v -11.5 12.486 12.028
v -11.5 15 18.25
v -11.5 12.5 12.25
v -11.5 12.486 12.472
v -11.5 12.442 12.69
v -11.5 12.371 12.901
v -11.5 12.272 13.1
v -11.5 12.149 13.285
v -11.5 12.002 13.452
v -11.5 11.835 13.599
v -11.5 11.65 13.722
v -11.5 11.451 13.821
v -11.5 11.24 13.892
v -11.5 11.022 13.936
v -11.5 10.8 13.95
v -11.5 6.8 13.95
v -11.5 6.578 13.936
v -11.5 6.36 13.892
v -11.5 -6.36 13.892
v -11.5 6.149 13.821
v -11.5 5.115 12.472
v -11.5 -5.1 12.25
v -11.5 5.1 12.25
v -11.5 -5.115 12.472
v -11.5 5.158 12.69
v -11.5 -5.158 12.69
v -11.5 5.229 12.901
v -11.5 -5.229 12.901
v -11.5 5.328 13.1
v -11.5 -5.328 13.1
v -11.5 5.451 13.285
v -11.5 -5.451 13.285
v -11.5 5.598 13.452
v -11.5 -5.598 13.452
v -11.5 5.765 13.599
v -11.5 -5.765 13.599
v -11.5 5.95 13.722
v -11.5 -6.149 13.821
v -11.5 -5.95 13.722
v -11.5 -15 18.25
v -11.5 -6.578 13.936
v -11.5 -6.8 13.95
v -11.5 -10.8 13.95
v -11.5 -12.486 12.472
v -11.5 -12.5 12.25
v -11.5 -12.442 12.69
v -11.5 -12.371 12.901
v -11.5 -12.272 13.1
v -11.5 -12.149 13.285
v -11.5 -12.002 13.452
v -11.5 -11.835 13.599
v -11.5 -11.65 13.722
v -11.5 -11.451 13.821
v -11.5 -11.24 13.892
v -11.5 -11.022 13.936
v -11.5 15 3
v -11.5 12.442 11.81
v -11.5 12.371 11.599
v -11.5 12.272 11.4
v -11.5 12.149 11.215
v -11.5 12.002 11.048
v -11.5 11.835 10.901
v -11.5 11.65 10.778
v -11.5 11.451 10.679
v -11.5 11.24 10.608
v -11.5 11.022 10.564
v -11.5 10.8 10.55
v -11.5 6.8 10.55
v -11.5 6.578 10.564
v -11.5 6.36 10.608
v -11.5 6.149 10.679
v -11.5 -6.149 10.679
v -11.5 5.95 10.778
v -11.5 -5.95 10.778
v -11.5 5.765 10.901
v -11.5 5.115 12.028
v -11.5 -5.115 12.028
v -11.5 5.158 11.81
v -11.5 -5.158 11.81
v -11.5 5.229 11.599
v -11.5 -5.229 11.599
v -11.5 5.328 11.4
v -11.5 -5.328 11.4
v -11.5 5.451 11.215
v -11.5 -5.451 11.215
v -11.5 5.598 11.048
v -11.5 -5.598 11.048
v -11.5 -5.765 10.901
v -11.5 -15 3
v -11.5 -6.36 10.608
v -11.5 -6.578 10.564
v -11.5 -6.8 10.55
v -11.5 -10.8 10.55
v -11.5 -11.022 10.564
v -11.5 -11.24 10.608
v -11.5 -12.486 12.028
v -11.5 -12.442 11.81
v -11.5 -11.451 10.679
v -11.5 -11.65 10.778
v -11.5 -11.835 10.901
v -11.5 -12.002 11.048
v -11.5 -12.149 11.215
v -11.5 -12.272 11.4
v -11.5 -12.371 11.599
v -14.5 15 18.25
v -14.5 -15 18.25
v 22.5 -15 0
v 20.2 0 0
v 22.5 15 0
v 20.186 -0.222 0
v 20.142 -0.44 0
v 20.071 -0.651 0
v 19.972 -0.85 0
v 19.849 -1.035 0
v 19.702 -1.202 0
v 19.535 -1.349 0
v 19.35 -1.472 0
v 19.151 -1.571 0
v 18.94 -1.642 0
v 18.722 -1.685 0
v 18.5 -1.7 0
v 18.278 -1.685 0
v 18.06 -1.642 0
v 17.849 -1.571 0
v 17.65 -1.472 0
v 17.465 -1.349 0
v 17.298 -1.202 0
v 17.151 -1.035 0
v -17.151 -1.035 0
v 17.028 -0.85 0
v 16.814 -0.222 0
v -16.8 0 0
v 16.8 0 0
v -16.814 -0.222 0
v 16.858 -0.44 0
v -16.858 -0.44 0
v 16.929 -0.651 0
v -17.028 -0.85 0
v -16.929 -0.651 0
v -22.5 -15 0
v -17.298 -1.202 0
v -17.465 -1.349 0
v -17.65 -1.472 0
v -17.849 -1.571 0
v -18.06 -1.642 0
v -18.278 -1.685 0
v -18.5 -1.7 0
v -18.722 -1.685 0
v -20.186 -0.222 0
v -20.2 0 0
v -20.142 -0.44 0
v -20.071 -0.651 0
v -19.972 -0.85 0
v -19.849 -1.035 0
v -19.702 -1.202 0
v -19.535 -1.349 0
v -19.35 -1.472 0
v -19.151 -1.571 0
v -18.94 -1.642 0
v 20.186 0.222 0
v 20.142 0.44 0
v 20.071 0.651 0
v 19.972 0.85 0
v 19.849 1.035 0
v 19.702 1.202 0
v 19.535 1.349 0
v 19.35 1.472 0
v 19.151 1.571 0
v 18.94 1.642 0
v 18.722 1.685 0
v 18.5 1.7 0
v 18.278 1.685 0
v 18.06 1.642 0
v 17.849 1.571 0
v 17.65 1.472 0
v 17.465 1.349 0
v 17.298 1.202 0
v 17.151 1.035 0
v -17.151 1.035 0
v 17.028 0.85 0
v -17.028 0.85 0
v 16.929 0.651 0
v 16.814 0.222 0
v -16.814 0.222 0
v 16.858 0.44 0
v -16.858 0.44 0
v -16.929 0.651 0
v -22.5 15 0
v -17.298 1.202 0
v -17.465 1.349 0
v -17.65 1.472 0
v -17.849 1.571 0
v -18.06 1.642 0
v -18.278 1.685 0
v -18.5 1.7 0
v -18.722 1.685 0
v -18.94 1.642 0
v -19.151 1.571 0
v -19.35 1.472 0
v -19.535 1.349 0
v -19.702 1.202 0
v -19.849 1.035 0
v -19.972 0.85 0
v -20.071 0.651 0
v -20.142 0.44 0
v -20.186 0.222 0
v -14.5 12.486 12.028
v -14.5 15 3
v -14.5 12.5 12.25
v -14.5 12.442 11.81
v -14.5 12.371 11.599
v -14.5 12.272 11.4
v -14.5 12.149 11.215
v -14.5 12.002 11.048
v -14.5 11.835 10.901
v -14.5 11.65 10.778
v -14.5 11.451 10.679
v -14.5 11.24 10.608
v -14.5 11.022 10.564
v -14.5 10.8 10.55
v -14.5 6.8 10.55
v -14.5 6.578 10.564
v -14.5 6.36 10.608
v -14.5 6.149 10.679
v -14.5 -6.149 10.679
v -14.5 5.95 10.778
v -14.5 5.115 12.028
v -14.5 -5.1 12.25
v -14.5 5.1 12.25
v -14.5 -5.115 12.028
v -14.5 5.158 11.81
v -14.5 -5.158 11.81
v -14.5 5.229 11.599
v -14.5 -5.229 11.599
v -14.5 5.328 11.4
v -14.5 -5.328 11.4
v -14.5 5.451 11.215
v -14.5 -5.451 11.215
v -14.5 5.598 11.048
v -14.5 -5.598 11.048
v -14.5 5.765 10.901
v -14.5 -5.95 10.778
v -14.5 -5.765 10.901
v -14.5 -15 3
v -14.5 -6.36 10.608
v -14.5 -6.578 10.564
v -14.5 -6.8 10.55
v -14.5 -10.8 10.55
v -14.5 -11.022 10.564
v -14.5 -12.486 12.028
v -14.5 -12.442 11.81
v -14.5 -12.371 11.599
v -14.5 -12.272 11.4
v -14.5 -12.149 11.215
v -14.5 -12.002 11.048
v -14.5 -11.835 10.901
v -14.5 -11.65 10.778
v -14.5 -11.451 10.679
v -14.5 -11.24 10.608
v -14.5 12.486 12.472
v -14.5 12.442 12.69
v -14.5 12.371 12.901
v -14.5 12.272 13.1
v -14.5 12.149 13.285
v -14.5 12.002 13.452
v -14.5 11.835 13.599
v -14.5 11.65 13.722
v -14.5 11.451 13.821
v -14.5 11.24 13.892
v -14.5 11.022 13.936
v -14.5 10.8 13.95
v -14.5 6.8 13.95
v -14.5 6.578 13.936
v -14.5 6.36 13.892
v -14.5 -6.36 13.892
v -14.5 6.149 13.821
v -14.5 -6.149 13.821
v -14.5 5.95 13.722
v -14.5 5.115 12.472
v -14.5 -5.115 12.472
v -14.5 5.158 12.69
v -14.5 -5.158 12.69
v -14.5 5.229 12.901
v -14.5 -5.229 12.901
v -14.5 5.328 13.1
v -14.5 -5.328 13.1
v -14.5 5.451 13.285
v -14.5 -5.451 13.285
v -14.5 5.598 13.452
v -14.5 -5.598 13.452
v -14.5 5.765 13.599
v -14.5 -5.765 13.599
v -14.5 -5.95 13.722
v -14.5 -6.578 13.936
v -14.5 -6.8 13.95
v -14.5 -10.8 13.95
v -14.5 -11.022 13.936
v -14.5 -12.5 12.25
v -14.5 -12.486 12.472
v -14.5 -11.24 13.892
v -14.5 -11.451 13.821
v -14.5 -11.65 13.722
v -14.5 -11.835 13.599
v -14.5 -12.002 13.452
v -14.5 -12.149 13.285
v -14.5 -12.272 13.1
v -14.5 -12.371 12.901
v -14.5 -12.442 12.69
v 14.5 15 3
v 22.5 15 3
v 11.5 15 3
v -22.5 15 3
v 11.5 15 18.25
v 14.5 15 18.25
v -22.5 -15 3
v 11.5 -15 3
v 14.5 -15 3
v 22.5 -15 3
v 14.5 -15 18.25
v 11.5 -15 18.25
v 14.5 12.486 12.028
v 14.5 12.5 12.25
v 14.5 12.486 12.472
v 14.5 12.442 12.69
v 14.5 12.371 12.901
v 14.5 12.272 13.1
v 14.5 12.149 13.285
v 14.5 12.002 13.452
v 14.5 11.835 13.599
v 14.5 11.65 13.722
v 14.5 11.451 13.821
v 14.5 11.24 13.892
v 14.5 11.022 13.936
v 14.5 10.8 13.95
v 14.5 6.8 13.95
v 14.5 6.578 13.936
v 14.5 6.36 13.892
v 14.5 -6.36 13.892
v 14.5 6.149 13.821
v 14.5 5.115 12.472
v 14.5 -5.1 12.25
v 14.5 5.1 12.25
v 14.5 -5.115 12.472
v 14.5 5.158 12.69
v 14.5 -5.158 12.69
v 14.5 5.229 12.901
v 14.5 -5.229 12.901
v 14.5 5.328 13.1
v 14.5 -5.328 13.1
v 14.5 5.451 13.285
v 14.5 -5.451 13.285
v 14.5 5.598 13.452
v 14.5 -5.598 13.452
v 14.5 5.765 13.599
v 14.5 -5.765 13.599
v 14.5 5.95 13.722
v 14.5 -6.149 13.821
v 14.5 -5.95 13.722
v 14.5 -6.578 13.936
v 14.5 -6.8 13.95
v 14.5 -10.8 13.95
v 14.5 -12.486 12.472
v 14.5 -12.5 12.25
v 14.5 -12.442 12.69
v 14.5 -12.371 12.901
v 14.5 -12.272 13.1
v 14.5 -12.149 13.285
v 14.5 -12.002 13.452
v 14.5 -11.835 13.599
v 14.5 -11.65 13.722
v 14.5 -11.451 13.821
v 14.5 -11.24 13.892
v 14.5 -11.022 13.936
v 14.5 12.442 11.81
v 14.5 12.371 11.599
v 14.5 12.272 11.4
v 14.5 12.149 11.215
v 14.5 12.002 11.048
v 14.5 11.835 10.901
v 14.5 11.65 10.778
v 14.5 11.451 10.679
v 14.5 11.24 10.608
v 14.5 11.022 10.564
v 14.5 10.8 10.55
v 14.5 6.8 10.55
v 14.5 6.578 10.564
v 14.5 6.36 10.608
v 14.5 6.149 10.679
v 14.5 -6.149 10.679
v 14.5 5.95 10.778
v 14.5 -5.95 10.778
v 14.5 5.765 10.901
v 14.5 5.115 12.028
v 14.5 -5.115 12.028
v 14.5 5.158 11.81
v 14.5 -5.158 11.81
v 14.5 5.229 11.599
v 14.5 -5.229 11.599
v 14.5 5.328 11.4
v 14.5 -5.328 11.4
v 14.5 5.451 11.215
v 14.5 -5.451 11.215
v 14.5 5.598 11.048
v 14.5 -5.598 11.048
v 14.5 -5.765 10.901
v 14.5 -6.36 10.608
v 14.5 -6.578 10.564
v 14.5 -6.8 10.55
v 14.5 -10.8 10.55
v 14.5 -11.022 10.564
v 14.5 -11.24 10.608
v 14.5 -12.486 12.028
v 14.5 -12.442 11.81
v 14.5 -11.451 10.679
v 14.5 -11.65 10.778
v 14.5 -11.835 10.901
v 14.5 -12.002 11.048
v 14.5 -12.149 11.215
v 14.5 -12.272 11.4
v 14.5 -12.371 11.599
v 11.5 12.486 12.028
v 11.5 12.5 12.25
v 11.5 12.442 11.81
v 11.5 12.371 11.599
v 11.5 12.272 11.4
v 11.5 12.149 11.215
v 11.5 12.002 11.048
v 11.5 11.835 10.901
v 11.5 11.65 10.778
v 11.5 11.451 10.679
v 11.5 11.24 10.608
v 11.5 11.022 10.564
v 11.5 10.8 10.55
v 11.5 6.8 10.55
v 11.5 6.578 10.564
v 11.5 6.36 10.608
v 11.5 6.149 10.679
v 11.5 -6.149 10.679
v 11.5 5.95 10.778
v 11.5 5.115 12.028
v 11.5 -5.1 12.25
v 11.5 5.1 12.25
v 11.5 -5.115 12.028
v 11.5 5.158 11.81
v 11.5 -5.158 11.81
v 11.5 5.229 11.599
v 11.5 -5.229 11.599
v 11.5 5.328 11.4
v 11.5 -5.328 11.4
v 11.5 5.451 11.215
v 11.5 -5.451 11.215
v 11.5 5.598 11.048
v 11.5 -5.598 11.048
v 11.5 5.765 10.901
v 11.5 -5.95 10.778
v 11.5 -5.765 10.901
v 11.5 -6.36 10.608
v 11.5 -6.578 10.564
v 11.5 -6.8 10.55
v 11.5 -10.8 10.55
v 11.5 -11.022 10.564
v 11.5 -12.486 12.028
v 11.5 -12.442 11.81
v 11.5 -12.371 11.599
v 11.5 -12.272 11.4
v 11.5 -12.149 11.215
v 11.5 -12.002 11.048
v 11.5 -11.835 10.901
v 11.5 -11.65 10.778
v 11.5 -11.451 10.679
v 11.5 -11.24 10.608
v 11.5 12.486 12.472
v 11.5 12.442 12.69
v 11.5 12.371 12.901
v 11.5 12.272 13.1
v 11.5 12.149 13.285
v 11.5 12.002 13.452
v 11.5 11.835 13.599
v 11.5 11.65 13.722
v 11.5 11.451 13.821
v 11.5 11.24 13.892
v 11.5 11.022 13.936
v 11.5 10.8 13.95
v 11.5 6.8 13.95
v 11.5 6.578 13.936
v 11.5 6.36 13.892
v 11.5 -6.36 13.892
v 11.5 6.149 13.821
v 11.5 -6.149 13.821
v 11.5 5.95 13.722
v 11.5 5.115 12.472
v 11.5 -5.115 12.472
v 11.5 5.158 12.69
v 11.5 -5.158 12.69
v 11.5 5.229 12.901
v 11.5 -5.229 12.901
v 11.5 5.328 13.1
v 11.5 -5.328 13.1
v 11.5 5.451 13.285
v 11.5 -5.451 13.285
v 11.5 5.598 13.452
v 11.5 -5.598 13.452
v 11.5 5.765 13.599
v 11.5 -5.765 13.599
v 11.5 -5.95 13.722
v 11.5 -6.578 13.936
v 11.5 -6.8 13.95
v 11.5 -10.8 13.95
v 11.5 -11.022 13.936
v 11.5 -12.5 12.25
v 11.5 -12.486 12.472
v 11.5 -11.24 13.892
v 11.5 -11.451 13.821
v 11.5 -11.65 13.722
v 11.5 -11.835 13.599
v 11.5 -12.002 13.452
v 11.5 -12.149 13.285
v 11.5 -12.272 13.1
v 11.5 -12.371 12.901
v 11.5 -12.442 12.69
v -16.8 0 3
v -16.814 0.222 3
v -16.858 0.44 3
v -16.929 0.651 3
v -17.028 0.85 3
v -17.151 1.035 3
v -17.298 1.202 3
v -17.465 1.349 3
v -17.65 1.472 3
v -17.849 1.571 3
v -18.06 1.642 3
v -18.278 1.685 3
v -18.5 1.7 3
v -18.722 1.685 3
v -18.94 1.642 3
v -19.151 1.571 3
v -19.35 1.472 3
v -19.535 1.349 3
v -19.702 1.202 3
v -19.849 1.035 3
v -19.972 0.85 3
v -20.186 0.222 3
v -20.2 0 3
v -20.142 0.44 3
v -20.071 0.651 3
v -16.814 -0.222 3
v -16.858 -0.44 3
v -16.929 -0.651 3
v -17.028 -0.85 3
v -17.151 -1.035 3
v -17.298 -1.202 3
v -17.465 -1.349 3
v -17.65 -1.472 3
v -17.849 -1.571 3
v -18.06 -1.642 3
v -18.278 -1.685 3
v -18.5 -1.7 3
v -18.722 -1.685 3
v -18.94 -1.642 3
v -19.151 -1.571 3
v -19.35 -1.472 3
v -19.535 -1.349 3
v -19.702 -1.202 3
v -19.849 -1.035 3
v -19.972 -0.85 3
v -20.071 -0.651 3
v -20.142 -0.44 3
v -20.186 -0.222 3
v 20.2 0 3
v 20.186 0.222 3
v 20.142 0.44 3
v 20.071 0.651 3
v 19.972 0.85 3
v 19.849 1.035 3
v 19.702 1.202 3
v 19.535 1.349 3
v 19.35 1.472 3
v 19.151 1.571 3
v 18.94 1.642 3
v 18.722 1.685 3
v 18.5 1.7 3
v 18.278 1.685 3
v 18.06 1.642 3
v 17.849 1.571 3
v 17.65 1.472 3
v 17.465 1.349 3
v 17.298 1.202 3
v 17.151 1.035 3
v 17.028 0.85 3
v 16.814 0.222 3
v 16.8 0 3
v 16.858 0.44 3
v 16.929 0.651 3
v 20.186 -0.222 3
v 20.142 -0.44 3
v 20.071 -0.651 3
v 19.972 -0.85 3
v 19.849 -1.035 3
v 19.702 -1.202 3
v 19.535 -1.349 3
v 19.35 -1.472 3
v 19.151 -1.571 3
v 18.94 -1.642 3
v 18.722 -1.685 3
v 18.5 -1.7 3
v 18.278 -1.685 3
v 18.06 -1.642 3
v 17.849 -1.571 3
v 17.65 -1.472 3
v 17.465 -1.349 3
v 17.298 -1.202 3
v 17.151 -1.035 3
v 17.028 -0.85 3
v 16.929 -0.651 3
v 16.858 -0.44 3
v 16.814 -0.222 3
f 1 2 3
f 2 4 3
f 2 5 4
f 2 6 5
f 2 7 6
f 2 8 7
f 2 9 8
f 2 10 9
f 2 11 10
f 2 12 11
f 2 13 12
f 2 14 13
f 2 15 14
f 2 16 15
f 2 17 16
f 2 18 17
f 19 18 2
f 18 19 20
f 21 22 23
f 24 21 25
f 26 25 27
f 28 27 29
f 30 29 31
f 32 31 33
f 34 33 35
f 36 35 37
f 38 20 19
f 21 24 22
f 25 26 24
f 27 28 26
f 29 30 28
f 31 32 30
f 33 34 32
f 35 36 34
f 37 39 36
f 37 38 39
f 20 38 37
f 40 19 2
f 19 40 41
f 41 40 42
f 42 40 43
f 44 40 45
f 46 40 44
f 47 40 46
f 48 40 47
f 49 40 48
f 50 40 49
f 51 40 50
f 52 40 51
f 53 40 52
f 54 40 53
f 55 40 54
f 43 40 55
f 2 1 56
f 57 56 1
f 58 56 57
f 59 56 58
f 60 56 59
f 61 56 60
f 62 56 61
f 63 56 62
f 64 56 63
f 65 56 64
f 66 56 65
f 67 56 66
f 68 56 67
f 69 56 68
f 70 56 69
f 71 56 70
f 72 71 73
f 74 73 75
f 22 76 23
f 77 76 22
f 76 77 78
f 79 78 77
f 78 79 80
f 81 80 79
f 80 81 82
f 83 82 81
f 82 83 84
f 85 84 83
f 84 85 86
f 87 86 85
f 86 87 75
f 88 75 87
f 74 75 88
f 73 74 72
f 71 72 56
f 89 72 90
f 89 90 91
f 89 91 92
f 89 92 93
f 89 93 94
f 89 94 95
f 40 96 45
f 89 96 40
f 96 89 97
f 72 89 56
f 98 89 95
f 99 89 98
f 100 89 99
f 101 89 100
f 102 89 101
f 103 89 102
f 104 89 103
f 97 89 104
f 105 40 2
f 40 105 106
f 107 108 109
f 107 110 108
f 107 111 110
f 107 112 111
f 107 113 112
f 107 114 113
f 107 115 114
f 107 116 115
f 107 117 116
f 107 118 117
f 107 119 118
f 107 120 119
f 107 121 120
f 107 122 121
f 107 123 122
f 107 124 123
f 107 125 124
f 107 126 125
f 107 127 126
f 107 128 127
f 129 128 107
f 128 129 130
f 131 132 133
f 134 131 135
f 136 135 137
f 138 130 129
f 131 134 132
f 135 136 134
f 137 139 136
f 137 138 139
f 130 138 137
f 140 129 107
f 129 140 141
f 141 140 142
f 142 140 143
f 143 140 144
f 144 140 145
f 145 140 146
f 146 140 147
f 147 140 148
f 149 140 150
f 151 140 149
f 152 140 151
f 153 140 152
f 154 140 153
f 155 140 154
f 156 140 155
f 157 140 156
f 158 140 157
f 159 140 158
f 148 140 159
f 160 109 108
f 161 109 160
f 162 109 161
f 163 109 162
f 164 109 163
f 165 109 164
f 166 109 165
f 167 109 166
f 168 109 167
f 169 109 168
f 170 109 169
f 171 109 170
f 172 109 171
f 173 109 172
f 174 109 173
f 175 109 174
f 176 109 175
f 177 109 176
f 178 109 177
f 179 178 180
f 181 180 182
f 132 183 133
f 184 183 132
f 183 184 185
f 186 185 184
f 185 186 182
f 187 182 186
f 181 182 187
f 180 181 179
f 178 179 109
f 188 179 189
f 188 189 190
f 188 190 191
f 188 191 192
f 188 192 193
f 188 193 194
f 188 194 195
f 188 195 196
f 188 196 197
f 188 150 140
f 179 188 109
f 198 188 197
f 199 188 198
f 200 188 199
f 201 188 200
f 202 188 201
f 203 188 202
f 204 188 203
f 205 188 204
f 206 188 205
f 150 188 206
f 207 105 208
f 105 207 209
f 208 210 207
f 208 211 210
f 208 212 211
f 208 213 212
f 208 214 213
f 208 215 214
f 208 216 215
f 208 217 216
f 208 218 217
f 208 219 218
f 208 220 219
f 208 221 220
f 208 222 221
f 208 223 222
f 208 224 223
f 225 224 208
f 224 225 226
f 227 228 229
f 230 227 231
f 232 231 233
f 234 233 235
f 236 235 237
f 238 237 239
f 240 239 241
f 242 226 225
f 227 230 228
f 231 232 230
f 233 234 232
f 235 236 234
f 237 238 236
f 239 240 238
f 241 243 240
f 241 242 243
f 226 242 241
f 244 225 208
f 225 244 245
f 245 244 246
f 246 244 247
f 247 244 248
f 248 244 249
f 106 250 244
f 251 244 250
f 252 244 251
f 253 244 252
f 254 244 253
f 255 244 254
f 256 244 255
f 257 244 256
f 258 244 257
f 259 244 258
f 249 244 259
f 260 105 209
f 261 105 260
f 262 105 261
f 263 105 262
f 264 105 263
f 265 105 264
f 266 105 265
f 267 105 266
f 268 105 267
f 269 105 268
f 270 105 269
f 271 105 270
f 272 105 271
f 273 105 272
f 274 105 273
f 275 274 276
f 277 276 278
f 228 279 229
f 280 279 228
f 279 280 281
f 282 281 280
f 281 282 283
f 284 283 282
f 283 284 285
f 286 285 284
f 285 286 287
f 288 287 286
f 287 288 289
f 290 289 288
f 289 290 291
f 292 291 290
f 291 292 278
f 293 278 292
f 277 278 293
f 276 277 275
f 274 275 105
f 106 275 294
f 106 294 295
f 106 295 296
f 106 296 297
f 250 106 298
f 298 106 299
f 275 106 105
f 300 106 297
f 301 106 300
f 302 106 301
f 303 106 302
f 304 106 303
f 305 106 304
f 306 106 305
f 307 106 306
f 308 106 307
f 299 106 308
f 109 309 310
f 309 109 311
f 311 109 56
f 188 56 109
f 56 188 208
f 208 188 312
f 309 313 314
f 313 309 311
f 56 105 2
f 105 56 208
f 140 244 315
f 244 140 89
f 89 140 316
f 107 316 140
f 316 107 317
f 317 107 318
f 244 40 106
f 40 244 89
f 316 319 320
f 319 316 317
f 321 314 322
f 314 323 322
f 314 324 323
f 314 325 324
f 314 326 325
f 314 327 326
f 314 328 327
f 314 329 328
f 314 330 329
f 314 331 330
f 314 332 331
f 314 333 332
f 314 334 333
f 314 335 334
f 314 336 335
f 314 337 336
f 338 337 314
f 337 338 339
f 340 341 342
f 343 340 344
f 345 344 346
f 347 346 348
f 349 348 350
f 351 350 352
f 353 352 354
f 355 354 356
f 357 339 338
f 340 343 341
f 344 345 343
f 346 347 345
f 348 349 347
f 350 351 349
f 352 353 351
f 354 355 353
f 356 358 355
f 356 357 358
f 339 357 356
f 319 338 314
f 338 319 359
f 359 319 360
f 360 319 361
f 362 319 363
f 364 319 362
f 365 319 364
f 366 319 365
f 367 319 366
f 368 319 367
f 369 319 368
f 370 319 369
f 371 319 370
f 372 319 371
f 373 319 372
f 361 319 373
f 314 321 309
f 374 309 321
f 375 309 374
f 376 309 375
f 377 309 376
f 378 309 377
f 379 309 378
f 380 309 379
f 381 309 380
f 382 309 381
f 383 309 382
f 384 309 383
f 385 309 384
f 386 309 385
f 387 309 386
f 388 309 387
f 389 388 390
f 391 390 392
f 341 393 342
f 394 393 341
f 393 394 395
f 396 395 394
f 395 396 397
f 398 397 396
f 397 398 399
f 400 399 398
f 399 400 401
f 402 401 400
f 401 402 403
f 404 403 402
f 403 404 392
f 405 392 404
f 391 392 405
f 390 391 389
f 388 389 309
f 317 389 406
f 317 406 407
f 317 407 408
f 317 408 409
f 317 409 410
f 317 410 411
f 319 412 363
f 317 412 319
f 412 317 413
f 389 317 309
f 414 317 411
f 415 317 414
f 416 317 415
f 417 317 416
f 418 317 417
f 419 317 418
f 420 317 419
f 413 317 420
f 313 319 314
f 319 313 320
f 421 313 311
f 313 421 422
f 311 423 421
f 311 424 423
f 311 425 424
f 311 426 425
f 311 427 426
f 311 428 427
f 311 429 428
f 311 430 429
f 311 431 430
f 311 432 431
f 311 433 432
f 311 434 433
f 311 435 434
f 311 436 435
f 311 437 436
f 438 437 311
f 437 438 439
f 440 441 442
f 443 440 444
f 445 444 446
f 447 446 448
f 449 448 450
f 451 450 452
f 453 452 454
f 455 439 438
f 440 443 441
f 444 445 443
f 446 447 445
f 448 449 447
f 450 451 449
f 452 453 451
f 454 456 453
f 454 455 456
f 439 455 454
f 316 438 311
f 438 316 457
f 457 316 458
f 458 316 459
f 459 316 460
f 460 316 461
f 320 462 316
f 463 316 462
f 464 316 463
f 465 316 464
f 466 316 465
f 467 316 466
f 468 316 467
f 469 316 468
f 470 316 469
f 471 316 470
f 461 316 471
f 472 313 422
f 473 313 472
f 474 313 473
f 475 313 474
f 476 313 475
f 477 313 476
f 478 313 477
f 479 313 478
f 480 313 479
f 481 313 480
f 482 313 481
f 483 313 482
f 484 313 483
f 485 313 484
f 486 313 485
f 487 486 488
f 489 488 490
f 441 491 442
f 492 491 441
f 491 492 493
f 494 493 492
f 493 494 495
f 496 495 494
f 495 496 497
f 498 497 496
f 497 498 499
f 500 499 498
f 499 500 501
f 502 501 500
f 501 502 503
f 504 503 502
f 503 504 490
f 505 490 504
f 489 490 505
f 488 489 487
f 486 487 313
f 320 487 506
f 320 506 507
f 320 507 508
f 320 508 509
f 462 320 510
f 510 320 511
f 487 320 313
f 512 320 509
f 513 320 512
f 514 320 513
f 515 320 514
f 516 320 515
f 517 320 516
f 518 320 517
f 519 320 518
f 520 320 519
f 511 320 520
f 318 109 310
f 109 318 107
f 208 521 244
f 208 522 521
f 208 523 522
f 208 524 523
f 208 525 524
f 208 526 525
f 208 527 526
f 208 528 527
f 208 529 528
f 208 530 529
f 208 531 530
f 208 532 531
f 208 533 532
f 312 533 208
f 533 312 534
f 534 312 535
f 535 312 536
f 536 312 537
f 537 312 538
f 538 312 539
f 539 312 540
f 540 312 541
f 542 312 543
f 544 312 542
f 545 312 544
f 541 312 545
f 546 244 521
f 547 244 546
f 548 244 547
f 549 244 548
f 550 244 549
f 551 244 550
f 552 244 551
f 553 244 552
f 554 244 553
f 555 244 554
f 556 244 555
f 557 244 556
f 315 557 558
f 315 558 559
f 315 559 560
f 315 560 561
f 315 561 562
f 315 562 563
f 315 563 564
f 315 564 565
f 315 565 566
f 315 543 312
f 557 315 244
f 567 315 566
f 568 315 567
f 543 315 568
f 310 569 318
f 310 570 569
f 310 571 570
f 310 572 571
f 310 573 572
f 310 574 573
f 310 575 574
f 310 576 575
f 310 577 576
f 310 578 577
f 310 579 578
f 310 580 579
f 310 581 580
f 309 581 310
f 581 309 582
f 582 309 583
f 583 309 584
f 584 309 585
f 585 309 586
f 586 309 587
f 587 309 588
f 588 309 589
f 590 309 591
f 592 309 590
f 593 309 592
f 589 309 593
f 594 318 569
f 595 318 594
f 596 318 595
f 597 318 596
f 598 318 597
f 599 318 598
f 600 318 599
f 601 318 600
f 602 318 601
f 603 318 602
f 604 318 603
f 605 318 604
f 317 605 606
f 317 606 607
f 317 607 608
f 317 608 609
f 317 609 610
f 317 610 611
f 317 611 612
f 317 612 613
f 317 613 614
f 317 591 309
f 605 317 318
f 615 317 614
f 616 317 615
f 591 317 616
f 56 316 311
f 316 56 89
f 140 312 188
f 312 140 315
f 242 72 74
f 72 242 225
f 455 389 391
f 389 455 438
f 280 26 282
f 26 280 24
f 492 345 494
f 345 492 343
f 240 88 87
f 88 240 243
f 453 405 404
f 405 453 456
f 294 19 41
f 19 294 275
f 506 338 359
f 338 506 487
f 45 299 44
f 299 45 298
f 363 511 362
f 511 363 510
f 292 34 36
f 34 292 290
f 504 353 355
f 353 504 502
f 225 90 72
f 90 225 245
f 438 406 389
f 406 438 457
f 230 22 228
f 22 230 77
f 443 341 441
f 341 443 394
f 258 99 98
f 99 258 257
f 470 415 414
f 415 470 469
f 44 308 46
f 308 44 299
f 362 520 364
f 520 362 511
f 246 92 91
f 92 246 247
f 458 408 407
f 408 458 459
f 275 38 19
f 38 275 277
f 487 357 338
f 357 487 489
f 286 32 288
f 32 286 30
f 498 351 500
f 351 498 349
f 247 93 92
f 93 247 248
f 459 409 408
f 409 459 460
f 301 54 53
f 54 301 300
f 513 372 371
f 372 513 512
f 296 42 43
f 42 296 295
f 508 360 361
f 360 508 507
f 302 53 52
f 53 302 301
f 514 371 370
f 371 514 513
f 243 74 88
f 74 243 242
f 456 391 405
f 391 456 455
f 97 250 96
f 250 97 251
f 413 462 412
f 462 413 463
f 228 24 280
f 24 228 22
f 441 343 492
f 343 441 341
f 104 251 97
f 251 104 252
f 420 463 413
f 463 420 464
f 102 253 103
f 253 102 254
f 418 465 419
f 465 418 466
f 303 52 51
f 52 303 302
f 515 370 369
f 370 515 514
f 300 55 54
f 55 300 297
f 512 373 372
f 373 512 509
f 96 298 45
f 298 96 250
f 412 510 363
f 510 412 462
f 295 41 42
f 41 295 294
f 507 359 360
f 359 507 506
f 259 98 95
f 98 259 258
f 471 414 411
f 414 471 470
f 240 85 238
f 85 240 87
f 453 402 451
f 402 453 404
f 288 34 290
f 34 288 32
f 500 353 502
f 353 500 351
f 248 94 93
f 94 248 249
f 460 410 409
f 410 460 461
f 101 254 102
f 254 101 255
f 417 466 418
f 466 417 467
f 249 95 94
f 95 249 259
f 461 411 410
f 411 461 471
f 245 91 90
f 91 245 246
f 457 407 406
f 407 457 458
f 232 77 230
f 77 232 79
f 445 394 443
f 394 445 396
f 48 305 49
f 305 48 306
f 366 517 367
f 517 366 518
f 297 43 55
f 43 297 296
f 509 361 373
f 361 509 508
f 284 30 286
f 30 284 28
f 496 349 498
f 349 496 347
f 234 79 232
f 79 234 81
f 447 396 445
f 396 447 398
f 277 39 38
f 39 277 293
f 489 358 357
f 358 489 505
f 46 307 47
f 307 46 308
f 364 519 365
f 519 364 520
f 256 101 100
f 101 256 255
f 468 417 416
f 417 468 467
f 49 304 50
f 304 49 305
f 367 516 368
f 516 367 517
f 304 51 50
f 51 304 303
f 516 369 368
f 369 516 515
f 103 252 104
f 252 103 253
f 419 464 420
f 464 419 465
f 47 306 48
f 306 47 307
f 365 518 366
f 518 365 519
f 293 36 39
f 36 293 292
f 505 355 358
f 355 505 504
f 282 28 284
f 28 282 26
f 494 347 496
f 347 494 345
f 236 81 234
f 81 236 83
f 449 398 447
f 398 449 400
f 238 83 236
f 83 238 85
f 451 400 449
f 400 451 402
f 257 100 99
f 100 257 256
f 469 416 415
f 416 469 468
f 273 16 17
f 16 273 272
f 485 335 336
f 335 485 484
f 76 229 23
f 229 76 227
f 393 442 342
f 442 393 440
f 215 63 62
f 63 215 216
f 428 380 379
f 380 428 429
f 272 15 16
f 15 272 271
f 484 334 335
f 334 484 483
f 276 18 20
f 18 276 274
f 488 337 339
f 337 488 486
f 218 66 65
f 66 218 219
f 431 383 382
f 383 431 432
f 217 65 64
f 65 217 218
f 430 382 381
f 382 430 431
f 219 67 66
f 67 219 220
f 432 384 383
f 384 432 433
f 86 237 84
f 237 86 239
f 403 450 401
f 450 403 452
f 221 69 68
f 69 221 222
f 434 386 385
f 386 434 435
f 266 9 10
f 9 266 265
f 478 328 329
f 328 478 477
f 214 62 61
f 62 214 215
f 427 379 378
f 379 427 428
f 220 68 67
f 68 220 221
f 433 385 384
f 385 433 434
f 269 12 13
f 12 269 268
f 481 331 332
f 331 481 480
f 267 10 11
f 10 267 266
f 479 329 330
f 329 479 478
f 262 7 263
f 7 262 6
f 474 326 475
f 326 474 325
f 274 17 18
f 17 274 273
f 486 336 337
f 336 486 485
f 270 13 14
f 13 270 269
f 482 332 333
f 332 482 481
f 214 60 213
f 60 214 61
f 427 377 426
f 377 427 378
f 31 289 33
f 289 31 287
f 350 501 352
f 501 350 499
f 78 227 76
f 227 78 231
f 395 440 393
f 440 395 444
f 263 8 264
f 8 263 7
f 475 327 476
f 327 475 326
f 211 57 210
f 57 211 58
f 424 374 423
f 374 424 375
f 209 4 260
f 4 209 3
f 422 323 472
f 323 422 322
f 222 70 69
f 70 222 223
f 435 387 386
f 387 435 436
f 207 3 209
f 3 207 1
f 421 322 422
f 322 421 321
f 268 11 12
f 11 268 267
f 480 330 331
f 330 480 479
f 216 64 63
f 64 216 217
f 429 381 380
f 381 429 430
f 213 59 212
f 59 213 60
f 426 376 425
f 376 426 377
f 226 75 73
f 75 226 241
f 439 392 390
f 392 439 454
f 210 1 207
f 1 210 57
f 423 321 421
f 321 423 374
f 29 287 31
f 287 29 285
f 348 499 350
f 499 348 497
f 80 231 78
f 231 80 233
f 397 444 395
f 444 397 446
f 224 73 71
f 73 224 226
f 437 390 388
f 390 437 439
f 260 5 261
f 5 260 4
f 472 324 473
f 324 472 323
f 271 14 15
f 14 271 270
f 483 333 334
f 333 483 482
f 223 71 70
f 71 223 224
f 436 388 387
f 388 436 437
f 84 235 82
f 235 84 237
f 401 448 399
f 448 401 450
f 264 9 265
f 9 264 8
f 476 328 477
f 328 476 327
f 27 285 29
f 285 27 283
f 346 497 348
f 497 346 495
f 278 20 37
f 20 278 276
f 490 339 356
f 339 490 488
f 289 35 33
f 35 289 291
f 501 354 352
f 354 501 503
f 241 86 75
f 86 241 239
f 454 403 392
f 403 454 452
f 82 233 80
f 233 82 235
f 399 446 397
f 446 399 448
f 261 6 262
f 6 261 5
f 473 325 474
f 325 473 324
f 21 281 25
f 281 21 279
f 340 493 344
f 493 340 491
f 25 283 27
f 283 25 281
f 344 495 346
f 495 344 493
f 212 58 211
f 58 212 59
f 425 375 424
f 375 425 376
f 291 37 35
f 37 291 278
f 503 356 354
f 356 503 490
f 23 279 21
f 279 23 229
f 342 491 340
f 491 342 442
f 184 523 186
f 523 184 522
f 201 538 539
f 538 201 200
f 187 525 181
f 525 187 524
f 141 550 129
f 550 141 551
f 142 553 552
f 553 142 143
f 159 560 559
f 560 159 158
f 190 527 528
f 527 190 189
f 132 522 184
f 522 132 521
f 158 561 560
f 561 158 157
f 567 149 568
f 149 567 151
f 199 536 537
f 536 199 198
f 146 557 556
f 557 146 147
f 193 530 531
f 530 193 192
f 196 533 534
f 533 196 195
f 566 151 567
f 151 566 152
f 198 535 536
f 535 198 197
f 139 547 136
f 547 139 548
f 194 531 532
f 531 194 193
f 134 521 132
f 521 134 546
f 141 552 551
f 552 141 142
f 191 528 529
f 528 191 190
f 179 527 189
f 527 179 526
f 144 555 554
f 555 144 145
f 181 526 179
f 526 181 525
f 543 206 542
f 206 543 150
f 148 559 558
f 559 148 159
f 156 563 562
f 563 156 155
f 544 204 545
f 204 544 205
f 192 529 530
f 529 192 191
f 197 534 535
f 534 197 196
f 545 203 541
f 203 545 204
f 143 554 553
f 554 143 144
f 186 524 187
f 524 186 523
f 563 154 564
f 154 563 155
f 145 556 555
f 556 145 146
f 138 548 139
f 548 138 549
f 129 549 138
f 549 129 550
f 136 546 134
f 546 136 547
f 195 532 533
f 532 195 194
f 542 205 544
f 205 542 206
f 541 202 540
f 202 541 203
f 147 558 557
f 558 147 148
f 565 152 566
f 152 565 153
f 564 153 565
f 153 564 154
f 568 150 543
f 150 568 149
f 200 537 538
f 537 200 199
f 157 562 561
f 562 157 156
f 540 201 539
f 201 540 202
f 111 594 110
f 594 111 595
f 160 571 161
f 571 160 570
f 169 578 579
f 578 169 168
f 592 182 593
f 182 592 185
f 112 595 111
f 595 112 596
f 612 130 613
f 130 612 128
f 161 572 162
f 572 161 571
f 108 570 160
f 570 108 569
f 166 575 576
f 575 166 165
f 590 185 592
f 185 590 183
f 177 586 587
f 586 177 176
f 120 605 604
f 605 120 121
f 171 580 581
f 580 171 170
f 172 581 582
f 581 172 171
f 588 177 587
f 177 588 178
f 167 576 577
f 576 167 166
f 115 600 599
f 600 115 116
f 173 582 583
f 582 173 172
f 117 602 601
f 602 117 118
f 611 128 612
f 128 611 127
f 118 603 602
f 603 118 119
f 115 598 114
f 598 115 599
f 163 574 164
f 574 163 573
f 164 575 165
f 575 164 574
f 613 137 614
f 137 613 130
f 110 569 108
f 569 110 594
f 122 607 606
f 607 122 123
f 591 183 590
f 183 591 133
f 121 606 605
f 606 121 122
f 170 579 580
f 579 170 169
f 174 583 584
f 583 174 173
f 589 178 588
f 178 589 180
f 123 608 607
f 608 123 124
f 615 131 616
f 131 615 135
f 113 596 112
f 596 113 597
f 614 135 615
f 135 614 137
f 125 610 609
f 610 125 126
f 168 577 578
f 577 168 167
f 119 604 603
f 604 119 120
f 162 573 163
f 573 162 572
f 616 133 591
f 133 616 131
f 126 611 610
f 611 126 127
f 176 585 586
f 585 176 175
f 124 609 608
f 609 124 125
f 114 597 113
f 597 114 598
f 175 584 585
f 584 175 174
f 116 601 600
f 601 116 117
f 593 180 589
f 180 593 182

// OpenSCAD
// file: params.scad
// Shared dimensions for the kitchen tester printed parts.
// ⚠ TT motor clones vary by ±0.5mm — measure YOUR DORHEA motors and print ONE
// bracket to check fit before running off all four.

// ---- TT motor (yellow gearbox type) ----
tt_body_len    = 65.0;   // gearbox + can, excluding shaft
tt_body_w      = 22.5;   // across the flats
tt_body_h      = 18.5;
tt_hole_d      = 3.2;    // M3 clearance
tt_hole_space  = 17.6;   // between the two gearbox through-holes — MEASURE THIS
tt_hole_z      = tt_body_h / 2;  // holes run through mid-height of the box

// ---- printing ----
fit_clr   = 0.25;  // per-side clearance for press/slide fits
wall      = 3.0;
m3_clr    = 3.4;   // M3 clearance hole
$fn       = 48;

// ---- chassis ----
plate_size  = 190;   // square, mm
plate_thick = 4;
grid_pitch  = 20;    // M3 mounting-hole grid
// main file
// TT motor bracket — U-channel cradle, 4 needed (all identical).
//
// The motor drops into the channel; two M3×30 screws pass through both walls
// and the motor's gearbox through-holes. Wall holes are SLOTS (±2mm along the
// motor axis) to absorb clone-to-clone hole-position variance. The base bolts
// to the chassis plate with two M3 screws on the 20mm grid.
//
// Print: PLA, 0.2mm layers, 3 perimeters, 25% infill, no supports
// (slots print as bridges — they're short, any printer handles it).

include <params.scad>

channel_w  = tt_body_w + 2 * fit_clr;       // motor slides in
bracket_len = 30;                            // along the motor axis
wall_h     = tt_hole_z + 6;                  // wall covers holes + margin
base_thick = 3;
base_ear   = 8;                              // ear width outside each wall
slot_len   = 4;                              // hole slop along motor axis

module wall_slot() {
    // M3 through-slot at motor-hole height, elongated along motor axis (Y)
    hull()
        for (y = [-slot_len/2, slot_len/2])
            translate([0, y, base_thick + tt_hole_z])
                rotate([0, 90, 0])
                    cylinder(d = m3_clr, h = 100, center = true);
}

module tt_motor_bracket() {
    difference() {
        union() {
            // base with mounting ears
            translate([-(channel_w/2 + wall + base_ear), -bracket_len/2, 0])
                cube([channel_w + 2*(wall + base_ear), bracket_len, base_thick]);
            // two walls
            for (s = [-1, 1])
                translate([s*(channel_w/2 + wall/2) - wall/2, -bracket_len/2, 0])
                    cube([wall, bracket_len, base_thick + wall_h]);
        }
        // motor through-screw slots (both walls at once)
        for (y = [-tt_hole_space/2, tt_hole_space/2])
            translate([0, y, 0]) wall_slot();
        // chassis mounting holes, one per ear, on-axis
        for (s = [-1, 1])
            translate([s*(channel_w/2 + wall + base_ear/2), 0, -1])
                cylinder(d = m3_clr, h = base_thick + 2);
    }
}

tt_motor_bracket();
